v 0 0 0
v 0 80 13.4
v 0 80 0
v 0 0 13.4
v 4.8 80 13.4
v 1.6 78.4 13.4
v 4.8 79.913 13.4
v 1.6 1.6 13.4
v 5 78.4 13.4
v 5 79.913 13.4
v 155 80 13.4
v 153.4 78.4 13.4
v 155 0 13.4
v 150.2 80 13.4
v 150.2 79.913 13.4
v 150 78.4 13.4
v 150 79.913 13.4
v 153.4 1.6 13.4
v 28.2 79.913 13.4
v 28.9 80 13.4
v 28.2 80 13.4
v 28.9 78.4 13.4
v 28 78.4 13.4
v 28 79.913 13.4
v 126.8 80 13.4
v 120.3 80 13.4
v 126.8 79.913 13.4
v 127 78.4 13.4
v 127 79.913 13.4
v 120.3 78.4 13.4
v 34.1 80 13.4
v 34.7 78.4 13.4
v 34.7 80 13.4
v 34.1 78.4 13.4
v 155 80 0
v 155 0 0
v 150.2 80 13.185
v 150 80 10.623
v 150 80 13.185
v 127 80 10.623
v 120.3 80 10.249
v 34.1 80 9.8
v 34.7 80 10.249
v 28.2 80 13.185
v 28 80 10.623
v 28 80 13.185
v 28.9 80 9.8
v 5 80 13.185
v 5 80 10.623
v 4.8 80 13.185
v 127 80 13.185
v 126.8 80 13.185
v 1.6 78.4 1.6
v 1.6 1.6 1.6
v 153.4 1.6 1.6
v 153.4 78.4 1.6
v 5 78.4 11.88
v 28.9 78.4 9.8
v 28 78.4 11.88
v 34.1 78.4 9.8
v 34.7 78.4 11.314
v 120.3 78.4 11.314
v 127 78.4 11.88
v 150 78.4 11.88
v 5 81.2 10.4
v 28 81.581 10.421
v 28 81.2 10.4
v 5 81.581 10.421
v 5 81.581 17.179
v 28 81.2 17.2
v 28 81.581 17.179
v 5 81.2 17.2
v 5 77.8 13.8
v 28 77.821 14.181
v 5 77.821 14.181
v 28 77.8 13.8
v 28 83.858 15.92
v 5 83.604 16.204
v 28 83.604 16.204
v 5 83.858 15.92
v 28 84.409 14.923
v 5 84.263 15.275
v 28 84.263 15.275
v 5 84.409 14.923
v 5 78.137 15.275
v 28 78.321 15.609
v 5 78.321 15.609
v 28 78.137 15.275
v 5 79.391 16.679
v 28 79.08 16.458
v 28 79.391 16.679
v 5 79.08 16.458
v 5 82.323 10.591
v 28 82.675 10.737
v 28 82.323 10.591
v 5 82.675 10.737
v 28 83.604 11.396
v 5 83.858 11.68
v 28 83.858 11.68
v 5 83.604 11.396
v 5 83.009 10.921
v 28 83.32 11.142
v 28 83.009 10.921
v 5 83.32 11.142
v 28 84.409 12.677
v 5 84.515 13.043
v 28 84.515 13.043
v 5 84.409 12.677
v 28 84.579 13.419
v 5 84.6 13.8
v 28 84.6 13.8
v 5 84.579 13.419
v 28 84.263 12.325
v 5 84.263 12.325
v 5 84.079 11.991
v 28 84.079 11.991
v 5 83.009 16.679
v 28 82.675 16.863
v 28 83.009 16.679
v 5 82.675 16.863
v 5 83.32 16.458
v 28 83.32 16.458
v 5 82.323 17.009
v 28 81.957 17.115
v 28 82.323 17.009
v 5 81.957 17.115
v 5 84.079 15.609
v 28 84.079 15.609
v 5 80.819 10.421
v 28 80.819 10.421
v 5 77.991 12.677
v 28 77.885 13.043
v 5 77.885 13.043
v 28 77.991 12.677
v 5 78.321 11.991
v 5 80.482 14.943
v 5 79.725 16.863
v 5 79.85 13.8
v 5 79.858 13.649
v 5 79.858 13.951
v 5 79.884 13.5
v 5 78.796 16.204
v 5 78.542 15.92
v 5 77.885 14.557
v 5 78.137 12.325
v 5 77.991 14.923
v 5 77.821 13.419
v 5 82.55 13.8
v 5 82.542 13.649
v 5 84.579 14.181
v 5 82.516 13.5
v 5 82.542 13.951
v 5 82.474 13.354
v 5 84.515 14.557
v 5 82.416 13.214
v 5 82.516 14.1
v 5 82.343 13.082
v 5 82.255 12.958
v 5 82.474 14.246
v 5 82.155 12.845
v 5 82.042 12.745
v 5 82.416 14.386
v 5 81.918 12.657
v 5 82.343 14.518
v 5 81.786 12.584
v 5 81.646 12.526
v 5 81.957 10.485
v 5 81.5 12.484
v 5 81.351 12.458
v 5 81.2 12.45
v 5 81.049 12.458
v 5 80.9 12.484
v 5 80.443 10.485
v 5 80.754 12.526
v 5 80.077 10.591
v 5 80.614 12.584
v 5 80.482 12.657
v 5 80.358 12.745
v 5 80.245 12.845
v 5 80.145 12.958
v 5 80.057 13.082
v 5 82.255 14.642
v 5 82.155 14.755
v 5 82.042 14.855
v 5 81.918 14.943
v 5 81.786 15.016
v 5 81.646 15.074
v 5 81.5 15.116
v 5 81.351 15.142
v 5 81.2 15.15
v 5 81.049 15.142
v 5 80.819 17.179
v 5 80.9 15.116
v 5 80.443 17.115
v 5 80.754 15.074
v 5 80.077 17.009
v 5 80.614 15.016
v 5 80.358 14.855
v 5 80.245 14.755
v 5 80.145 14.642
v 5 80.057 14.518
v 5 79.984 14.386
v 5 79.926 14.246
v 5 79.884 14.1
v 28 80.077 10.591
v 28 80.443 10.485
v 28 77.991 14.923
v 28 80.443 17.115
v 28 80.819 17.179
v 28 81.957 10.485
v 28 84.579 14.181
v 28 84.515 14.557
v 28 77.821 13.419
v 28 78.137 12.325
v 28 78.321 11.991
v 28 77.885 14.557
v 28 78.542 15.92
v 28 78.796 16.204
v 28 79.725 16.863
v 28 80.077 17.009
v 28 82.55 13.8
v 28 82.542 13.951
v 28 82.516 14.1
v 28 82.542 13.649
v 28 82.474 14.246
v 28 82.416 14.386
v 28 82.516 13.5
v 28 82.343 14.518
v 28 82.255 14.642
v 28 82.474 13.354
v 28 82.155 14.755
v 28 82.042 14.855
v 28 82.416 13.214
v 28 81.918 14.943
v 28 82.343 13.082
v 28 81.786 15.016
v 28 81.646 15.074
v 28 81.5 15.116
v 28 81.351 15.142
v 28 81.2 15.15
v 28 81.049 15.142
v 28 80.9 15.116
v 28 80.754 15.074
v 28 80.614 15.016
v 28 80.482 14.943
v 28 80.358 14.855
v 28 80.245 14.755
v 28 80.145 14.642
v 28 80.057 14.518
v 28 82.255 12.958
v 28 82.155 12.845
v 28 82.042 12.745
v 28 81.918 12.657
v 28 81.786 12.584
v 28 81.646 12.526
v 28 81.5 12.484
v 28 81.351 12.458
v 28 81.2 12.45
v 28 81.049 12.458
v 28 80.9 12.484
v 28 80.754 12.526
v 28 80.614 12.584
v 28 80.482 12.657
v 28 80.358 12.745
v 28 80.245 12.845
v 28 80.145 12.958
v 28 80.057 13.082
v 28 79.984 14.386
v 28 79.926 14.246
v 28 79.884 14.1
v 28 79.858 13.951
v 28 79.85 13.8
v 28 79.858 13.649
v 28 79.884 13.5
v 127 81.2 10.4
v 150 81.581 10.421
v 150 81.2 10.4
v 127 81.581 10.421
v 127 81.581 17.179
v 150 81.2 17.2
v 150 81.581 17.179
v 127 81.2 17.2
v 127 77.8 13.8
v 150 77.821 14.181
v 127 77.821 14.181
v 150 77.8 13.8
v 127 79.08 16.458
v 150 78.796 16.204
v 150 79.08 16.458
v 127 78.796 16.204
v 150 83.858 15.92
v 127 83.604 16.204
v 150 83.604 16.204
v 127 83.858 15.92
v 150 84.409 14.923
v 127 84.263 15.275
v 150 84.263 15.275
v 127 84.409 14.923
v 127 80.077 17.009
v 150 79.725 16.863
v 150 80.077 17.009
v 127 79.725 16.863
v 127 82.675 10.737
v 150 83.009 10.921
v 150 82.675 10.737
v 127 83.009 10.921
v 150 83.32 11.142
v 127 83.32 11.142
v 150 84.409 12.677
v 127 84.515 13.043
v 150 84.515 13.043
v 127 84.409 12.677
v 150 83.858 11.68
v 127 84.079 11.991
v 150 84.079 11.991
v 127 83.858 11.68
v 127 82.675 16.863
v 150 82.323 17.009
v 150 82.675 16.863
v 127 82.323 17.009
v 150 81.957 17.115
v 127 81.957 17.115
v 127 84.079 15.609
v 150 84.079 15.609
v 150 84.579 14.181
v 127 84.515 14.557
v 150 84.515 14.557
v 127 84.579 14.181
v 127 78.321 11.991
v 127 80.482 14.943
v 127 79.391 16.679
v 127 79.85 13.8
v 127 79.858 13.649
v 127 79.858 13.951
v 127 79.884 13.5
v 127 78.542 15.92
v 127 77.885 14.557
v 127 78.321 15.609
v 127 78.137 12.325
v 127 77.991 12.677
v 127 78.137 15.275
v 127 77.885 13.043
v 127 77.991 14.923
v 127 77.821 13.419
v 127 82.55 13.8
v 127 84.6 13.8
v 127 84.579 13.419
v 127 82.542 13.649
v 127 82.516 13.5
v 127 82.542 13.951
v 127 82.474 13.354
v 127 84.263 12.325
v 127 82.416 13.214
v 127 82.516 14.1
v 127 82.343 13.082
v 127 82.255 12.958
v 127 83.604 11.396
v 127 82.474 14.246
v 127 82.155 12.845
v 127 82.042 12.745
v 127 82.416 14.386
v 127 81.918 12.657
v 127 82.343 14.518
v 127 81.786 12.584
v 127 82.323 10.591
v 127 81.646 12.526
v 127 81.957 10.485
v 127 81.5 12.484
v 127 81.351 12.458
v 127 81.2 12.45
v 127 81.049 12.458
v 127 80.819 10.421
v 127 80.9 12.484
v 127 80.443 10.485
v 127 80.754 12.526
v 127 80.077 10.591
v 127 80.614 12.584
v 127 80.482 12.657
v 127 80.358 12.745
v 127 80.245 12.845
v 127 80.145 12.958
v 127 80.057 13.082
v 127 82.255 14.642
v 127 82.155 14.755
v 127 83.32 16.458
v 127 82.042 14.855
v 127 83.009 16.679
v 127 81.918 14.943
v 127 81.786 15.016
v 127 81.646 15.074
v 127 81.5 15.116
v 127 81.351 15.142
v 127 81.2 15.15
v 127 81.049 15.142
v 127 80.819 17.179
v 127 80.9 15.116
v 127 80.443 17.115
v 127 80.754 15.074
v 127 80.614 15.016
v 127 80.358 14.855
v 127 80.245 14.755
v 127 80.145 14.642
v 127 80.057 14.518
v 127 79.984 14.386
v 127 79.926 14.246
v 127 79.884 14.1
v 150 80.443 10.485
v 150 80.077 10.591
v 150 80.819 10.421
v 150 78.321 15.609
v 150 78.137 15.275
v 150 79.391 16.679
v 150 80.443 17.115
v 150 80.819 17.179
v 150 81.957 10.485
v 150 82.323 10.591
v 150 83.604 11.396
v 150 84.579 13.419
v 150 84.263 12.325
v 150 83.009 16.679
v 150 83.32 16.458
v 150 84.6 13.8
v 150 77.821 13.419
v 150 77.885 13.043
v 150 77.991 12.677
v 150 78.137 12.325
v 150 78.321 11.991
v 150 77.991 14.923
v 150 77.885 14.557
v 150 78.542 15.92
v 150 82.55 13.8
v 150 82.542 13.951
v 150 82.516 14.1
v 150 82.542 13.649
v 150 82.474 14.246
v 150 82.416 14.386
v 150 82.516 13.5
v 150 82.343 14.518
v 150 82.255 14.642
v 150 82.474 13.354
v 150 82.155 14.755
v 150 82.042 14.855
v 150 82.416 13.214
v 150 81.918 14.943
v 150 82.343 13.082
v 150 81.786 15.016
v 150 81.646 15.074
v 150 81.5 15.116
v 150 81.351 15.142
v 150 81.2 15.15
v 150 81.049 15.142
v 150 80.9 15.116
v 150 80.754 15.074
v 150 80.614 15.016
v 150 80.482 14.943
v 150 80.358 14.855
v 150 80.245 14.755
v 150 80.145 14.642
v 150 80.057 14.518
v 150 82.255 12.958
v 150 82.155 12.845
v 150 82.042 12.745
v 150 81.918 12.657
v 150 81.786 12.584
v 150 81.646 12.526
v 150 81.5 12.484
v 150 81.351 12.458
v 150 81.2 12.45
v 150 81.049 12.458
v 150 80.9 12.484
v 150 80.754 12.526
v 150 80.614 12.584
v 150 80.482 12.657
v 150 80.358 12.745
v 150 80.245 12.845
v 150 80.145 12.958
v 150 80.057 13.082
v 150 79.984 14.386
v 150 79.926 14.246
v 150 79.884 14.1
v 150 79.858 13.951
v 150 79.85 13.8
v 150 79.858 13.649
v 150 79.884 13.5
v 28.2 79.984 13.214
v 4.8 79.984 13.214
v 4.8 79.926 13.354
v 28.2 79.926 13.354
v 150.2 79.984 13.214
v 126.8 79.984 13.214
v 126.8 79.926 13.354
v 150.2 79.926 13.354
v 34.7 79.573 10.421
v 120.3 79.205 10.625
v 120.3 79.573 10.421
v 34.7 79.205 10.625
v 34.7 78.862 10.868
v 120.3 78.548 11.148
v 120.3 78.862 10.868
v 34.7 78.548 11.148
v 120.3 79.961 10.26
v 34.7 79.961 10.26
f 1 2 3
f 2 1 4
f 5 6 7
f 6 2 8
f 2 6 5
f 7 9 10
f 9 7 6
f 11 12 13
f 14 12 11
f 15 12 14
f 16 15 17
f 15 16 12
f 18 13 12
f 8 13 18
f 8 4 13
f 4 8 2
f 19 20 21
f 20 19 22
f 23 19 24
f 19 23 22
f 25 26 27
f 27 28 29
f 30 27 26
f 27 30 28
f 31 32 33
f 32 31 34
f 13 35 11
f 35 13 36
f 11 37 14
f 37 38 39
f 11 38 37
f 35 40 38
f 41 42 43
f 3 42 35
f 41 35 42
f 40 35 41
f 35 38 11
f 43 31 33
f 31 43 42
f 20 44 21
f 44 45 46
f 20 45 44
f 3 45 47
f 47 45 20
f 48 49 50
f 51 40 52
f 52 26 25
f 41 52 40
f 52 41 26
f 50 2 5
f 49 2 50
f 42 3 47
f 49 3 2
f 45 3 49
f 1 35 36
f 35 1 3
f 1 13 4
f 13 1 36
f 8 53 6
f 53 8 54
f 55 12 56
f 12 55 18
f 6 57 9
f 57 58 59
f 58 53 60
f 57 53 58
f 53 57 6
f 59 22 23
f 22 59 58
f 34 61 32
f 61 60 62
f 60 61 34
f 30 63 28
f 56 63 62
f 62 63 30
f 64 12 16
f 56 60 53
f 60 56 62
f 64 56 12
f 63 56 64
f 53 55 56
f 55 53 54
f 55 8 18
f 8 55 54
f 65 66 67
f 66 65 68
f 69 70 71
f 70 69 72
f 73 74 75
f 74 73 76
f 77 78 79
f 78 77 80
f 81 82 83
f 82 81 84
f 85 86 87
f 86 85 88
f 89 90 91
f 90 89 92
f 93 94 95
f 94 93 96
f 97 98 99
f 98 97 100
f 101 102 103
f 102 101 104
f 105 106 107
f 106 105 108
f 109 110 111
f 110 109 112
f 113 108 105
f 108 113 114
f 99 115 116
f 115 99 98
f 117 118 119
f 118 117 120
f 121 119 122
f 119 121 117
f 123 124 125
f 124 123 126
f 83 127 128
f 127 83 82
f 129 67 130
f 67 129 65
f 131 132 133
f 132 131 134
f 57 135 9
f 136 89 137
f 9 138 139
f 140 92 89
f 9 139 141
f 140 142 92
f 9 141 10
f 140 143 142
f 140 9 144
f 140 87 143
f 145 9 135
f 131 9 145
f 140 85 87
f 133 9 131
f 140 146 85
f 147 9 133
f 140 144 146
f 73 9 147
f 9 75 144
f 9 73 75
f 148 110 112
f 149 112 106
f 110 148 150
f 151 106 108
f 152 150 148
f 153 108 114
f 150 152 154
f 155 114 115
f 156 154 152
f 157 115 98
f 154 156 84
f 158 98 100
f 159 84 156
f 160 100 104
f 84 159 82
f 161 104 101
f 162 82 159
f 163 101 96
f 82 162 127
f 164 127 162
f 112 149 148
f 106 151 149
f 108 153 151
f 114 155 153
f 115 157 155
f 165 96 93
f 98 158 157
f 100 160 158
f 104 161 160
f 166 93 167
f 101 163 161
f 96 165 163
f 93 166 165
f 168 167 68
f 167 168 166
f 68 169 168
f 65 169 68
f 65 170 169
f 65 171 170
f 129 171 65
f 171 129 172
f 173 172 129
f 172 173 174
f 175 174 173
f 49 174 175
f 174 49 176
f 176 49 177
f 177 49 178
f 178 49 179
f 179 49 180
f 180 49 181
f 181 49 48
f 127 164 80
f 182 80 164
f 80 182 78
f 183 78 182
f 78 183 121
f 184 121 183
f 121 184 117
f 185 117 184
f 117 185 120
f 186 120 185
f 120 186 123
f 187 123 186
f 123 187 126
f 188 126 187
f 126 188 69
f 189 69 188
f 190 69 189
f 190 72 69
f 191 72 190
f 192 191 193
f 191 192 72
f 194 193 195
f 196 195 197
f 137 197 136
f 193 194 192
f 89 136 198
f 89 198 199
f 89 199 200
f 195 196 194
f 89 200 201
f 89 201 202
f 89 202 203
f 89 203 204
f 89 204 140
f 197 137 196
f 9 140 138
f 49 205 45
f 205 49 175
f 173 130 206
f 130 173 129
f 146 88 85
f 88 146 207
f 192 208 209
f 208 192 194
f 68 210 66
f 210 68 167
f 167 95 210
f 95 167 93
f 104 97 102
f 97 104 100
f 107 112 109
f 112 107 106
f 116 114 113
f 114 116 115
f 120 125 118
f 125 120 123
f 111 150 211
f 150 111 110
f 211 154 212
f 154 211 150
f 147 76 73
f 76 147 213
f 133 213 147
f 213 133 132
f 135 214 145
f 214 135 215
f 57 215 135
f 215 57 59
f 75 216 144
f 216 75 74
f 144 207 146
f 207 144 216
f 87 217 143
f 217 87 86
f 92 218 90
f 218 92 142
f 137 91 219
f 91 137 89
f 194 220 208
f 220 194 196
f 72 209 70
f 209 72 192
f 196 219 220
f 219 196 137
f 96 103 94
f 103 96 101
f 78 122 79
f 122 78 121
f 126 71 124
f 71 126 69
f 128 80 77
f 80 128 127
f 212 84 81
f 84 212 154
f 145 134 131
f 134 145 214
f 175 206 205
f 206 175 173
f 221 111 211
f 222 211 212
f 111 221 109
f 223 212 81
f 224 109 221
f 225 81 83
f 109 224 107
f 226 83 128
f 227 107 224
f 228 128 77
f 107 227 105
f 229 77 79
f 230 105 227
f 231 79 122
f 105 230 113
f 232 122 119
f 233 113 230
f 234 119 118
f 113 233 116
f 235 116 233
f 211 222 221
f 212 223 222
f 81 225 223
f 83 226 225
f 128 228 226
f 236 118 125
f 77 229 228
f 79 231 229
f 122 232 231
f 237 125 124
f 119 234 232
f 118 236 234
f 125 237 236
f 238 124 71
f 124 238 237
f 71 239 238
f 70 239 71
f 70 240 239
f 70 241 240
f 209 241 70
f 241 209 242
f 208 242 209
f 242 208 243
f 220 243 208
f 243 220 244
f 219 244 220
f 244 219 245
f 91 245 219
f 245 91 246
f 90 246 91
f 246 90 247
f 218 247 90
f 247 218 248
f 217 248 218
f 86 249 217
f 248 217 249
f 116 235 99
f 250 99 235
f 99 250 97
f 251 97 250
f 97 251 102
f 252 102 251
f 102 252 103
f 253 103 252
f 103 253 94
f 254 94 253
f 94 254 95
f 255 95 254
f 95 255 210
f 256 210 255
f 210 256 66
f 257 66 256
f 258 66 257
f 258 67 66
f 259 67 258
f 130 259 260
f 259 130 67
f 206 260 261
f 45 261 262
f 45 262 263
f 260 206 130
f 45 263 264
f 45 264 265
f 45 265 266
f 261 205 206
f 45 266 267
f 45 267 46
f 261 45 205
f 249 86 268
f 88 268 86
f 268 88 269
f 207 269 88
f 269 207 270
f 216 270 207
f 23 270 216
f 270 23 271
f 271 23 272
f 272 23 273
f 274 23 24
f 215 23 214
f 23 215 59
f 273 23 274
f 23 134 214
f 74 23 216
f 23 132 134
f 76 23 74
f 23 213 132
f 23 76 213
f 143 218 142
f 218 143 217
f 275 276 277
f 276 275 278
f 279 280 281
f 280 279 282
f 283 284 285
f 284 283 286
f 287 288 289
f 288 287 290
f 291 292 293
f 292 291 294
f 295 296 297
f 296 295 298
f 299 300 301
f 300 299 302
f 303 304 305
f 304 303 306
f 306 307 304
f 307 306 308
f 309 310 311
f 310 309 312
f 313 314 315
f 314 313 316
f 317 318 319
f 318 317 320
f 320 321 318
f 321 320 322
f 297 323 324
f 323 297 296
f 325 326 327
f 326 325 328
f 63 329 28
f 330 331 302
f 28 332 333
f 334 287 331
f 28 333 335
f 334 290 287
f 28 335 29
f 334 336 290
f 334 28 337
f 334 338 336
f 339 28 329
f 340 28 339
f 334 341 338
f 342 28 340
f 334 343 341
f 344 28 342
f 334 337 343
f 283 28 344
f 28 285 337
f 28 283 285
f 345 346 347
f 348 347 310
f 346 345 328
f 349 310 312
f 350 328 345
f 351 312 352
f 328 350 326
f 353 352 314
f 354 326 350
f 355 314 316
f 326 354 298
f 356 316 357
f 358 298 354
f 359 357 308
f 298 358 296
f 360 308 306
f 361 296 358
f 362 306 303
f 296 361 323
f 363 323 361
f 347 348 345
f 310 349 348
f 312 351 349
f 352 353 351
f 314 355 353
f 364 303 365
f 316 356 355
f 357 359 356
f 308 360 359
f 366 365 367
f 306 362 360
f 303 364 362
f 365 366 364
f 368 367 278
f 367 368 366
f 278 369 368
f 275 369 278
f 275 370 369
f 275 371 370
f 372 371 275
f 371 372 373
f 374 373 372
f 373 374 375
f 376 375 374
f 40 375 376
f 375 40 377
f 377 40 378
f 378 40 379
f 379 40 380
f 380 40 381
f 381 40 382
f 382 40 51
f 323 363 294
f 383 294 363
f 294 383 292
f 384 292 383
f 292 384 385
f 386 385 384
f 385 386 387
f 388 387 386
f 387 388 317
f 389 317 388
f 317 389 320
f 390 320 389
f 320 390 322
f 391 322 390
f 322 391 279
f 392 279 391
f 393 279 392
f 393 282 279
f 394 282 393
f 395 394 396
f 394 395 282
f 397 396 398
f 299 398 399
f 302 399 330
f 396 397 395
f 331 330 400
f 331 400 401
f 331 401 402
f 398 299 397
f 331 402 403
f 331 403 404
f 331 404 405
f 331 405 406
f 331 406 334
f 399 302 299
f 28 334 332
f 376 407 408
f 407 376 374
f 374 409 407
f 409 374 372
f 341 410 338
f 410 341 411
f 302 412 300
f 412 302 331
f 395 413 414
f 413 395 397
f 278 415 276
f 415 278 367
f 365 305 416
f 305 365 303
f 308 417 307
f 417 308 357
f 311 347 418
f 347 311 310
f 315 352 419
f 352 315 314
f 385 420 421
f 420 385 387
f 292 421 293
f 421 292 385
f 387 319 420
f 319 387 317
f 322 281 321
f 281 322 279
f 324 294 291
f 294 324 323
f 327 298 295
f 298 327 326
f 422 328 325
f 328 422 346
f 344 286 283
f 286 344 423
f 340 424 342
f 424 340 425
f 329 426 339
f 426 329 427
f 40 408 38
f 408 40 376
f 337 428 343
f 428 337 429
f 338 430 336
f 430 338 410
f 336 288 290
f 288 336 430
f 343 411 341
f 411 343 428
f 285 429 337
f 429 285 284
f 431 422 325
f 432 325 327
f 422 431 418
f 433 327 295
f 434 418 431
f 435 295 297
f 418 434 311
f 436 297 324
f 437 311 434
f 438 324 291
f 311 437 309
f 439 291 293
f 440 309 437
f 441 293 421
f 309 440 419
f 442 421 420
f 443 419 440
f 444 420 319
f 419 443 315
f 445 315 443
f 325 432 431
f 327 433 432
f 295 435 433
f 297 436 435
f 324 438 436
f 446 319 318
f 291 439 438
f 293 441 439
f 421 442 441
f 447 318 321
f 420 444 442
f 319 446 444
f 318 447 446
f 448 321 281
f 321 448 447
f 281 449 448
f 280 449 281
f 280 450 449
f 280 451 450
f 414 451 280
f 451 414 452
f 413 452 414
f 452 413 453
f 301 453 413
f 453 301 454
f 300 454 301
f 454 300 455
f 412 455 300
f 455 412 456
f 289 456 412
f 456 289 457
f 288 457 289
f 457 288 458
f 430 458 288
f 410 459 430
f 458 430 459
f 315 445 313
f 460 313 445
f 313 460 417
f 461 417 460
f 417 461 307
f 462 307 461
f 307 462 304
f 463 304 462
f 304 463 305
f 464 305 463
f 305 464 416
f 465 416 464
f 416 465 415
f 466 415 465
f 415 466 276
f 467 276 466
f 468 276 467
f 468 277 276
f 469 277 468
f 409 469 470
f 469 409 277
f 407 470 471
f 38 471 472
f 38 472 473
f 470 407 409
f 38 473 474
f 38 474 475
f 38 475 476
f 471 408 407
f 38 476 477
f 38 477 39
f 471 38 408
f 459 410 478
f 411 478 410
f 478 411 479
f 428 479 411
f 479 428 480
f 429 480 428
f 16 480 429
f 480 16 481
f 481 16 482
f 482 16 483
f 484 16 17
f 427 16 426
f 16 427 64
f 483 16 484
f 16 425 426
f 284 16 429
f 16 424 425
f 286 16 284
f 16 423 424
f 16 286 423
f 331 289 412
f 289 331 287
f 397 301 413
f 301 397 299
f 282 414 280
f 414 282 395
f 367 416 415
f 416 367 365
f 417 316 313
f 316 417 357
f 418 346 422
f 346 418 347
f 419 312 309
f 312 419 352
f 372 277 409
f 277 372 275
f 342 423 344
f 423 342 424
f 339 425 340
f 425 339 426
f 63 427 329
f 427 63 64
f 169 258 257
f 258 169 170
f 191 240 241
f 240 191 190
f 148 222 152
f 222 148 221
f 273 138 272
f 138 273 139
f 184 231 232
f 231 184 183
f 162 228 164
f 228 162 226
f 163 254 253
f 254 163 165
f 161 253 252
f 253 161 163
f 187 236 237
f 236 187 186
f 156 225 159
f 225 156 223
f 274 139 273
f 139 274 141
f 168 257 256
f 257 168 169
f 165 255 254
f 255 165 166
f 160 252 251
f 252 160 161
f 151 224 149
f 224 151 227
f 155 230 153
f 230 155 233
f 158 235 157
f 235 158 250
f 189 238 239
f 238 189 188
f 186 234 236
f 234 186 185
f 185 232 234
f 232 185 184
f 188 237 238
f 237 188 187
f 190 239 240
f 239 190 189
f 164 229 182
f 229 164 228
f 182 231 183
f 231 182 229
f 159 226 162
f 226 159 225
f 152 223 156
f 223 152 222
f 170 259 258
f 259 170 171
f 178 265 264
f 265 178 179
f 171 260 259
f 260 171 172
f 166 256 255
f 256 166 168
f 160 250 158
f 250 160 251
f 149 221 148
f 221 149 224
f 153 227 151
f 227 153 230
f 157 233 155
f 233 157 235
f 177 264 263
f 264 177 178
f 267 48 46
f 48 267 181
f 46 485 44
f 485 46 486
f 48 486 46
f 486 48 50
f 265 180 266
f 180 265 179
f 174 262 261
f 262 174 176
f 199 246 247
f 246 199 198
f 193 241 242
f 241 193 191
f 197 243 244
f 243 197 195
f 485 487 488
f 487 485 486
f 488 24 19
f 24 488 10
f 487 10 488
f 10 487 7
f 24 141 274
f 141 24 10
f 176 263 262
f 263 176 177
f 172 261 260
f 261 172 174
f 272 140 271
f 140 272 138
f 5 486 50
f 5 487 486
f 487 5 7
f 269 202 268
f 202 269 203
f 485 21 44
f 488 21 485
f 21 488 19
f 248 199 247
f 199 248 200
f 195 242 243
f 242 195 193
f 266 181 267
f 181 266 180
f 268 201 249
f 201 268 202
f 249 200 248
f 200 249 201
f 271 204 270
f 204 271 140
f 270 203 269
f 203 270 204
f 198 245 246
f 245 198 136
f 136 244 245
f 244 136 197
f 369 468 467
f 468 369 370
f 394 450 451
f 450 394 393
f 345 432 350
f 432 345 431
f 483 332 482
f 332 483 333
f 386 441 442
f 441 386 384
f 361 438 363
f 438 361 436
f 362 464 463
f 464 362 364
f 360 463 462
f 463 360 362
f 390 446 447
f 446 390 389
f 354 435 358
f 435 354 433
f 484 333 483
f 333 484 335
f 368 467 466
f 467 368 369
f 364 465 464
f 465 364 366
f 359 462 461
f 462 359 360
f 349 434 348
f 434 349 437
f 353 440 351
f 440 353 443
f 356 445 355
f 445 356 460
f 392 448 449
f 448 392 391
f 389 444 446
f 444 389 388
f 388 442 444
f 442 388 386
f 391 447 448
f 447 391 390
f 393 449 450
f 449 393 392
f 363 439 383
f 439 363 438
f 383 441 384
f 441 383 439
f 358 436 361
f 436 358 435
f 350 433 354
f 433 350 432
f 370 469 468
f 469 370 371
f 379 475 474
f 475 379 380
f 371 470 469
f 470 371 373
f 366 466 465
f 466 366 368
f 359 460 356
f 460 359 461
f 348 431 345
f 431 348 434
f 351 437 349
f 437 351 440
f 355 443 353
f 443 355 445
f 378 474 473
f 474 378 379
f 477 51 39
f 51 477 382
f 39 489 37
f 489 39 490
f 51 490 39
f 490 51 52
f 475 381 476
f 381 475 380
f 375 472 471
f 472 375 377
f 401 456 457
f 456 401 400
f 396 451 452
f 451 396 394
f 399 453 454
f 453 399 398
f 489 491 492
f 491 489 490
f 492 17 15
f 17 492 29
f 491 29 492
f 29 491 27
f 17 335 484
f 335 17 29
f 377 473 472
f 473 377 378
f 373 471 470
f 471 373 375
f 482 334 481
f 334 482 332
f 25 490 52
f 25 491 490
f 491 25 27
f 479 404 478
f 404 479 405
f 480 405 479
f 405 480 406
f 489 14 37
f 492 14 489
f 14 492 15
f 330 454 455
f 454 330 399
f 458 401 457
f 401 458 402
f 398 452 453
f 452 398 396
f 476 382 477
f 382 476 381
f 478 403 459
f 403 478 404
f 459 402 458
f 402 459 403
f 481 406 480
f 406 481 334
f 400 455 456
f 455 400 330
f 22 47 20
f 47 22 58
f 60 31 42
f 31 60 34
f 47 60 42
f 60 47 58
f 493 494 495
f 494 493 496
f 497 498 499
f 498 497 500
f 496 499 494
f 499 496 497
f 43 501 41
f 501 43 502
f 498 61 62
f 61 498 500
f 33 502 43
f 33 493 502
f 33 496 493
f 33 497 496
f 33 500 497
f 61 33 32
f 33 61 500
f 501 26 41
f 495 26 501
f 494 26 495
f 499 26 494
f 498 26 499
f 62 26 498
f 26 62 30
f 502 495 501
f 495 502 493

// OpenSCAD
// Generated by Mecha-Splicer: clamshell_terminal v1
// Dimension-based CAD ONLY: unknown PCB screw positions, USB access and real fit.
// base / keyboard tray, all dimensions in mm
$fn=56;
W=155.0; D=80.0; wall=1.6; floor=1.6;
HBASE=13.4; HLID=5.8; gap=0.8;
hy=81.2; hz=13.8;
kr=3.4; bore=2.7;

module base_shell() {
  difference() {
    union() {
      difference() {
        cube([W,D,HBASE]);
        translate([wall,wall,floor]) cube([W-2*wall,D-2*wall,HBASE+1]);
      }
      for (x=[5.0,127.0]) translate([x,hy,hz]) rotate([0,90,0]) cylinder(h=23.0,r=kr);
    }
    // Strain-relief entry only: actual cable bend life remains untested
    translate([28.9,78.30000000000001,9.8]) cube([5.2,1.8,3.7]);
    // Clearance pocket for opposite lid knuckle through base rear wall
    translate([34.7,hy,hz]) rotate([0,90,0]) cylinder(h=85.6,r=3.75);
    // Through-bore including relief outside the short segments
    for (x=[4.8,126.8]) translate([x,hy,hz]) rotate([0,90,0]) cylinder(h=23.4,d=bore);
  }
}
base_shell();
